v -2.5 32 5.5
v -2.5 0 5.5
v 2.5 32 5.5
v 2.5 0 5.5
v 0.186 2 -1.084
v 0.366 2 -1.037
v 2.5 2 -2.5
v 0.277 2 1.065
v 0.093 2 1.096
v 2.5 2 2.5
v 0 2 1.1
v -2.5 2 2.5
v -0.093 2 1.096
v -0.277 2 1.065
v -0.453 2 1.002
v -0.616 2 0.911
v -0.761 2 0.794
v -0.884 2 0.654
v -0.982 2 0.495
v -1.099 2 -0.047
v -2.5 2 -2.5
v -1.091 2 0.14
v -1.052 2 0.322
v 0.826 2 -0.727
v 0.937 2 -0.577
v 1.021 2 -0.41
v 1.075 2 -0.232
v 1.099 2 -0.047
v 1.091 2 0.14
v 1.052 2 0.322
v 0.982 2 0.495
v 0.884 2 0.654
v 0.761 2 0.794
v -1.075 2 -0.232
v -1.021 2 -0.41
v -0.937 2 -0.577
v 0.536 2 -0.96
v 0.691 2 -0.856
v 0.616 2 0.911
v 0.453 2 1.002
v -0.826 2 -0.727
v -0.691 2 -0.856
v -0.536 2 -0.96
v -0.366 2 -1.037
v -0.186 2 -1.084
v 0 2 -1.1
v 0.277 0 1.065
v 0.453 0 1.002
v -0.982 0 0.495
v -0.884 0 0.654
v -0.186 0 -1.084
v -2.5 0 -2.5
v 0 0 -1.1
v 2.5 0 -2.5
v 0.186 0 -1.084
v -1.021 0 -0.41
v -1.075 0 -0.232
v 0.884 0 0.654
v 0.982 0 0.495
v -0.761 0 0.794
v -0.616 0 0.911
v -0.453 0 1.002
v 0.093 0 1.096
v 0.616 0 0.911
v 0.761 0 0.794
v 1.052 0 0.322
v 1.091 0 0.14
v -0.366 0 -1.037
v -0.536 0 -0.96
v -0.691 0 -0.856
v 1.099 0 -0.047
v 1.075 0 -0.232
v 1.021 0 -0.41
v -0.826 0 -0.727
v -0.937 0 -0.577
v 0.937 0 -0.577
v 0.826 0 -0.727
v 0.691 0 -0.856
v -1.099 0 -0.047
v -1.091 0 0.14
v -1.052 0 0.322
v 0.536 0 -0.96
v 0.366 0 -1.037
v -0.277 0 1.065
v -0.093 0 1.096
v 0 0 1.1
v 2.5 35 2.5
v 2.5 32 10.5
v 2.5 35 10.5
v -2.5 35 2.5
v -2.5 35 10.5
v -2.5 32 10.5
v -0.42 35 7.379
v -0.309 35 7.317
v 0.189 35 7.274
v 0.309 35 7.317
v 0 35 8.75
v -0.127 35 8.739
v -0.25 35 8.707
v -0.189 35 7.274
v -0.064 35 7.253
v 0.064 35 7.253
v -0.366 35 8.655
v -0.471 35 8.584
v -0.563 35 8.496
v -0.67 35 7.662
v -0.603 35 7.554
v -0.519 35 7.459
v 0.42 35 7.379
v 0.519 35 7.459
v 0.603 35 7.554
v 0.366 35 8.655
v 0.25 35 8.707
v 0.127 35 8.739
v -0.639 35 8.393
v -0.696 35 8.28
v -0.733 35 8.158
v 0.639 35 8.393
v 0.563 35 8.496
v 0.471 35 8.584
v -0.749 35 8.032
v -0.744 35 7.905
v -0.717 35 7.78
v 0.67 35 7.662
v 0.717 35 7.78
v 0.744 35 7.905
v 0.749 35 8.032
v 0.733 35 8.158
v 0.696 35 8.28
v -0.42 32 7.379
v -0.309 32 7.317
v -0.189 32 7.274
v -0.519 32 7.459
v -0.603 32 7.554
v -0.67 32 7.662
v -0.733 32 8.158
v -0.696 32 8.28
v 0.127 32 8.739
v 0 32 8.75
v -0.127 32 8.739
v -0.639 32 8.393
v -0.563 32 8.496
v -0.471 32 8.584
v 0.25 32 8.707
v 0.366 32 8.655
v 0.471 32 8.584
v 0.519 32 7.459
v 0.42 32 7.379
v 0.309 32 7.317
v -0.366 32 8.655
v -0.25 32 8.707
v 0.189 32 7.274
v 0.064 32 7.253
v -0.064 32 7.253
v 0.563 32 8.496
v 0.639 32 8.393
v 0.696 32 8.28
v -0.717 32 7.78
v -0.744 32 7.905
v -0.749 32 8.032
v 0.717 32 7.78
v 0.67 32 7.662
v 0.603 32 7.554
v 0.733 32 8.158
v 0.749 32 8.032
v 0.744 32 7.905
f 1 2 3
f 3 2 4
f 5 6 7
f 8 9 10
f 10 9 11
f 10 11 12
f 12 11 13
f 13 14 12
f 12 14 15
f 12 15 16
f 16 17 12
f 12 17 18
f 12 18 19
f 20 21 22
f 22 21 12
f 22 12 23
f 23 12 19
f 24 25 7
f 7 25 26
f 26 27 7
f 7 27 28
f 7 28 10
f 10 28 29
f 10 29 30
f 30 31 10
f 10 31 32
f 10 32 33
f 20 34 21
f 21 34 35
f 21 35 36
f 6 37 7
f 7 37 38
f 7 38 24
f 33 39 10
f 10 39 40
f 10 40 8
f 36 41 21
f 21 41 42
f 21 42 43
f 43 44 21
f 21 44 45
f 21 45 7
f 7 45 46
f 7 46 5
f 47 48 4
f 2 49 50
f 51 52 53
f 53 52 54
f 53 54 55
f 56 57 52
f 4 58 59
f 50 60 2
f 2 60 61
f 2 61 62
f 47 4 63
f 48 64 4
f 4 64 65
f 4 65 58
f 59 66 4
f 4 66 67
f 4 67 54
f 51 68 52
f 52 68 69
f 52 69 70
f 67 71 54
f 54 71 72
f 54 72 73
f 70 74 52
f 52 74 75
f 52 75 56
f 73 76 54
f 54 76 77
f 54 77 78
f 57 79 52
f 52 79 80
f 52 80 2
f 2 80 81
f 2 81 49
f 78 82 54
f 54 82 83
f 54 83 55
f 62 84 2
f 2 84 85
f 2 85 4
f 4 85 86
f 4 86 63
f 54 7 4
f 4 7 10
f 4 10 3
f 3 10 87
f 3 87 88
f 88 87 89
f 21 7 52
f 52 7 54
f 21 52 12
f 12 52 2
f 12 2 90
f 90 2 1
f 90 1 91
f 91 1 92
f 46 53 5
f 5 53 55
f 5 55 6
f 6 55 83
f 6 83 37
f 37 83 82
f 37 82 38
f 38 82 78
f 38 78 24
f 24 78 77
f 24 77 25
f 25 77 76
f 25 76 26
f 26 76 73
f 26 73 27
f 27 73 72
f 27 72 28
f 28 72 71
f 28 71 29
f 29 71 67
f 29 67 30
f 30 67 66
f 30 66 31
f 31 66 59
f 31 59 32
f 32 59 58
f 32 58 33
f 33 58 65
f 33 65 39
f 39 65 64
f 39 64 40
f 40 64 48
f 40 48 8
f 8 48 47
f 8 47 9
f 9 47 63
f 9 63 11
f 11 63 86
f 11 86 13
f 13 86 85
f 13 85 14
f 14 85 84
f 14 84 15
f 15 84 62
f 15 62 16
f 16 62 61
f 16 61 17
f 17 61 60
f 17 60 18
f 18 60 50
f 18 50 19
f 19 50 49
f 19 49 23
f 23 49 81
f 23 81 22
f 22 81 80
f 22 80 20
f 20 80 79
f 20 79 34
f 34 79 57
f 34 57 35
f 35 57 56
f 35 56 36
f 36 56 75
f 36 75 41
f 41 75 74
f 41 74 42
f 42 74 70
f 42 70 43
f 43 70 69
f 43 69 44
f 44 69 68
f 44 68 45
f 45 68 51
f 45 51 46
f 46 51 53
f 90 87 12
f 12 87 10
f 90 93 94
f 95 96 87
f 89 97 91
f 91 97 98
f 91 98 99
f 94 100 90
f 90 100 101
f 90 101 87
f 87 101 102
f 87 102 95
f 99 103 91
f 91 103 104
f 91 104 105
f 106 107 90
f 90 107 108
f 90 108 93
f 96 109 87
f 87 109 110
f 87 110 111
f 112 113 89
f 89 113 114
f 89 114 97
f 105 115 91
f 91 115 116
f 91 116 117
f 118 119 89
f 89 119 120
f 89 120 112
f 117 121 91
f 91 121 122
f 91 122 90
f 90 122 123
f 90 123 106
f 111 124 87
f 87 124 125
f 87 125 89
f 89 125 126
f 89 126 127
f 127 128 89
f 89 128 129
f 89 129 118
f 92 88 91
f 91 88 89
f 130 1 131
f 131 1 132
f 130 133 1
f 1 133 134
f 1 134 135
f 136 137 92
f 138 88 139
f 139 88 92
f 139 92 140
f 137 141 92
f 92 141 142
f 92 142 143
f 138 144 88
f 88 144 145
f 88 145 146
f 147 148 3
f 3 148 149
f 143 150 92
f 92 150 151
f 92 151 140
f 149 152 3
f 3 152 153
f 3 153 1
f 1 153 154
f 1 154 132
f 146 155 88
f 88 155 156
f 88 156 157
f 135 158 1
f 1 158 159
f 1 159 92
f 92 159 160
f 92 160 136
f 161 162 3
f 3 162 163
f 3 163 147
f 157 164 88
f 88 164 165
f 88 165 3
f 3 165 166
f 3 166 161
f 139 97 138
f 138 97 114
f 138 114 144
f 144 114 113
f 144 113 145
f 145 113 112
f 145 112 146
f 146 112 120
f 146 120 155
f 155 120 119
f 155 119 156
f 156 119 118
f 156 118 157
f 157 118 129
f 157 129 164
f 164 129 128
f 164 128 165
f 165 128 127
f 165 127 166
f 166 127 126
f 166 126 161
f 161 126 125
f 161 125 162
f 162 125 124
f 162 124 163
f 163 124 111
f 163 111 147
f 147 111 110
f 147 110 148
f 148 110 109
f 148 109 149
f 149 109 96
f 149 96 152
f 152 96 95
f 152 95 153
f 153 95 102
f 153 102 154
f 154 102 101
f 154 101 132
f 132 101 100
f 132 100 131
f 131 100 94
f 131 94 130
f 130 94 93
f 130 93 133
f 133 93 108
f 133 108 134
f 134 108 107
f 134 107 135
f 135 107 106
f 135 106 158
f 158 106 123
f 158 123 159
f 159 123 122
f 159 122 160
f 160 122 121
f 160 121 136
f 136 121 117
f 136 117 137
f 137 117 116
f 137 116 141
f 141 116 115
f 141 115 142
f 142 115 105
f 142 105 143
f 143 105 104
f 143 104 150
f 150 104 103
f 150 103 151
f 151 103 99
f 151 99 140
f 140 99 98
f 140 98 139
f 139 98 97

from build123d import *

# Parameters (mm, degrees)
SKETCH_1_W      = 5
SKETCH_1_H      = 5
SKETCH_1_R      = 1.1
EXTRUDE_1_DEPTH = 2
SKETCH_2_W      = 5
SKETCH_2_H      = 3
EXTRUDE_2_DEPTH = 35
SKETCH_3_W      = 5
SKETCH_3_H      = 5
SKETCH_3_R      = 0.75
EXTRUDE_3_DEPTH = 3


with BuildPart() as part:
    # 草图1 → 凸台-拉伸1 (new body)
    with BuildSketch(Plane(origin=(0, 0, 0), x_dir=(1, 0, 0), z_dir=(0, 1, 0))):
        Rectangle(SKETCH_1_W, SKETCH_1_H)
        with Locations(Location((0, 0, 0), (0, 0, 270))):
            Circle(SKETCH_1_R, mode=Mode.SUBTRACT)
    extrude(amount=EXTRUDE_1_DEPTH)

    # 草图2 → 凸台-拉伸2 (add)
    with BuildSketch(Plane.XZ):
        with Locations((0, 4)):
            Rectangle(SKETCH_2_W, SKETCH_2_H)
    extrude(amount=-EXTRUDE_2_DEPTH)

    # 草图3 → 凸台-拉伸3 (add)
    with BuildSketch(Plane(origin=(0, 35, 0), x_dir=(1, 0, 0), z_dir=(0, 1, 0))):
        with Locations((0, -8)):
            Rectangle(SKETCH_3_W, SKETCH_3_H)
        with Locations(Location((0, -8, 0), (0, 0, 270))):
            Circle(SKETCH_3_R, mode=Mode.SUBTRACT)
    extrude(amount=-EXTRUDE_3_DEPTH)


solid = part.part
